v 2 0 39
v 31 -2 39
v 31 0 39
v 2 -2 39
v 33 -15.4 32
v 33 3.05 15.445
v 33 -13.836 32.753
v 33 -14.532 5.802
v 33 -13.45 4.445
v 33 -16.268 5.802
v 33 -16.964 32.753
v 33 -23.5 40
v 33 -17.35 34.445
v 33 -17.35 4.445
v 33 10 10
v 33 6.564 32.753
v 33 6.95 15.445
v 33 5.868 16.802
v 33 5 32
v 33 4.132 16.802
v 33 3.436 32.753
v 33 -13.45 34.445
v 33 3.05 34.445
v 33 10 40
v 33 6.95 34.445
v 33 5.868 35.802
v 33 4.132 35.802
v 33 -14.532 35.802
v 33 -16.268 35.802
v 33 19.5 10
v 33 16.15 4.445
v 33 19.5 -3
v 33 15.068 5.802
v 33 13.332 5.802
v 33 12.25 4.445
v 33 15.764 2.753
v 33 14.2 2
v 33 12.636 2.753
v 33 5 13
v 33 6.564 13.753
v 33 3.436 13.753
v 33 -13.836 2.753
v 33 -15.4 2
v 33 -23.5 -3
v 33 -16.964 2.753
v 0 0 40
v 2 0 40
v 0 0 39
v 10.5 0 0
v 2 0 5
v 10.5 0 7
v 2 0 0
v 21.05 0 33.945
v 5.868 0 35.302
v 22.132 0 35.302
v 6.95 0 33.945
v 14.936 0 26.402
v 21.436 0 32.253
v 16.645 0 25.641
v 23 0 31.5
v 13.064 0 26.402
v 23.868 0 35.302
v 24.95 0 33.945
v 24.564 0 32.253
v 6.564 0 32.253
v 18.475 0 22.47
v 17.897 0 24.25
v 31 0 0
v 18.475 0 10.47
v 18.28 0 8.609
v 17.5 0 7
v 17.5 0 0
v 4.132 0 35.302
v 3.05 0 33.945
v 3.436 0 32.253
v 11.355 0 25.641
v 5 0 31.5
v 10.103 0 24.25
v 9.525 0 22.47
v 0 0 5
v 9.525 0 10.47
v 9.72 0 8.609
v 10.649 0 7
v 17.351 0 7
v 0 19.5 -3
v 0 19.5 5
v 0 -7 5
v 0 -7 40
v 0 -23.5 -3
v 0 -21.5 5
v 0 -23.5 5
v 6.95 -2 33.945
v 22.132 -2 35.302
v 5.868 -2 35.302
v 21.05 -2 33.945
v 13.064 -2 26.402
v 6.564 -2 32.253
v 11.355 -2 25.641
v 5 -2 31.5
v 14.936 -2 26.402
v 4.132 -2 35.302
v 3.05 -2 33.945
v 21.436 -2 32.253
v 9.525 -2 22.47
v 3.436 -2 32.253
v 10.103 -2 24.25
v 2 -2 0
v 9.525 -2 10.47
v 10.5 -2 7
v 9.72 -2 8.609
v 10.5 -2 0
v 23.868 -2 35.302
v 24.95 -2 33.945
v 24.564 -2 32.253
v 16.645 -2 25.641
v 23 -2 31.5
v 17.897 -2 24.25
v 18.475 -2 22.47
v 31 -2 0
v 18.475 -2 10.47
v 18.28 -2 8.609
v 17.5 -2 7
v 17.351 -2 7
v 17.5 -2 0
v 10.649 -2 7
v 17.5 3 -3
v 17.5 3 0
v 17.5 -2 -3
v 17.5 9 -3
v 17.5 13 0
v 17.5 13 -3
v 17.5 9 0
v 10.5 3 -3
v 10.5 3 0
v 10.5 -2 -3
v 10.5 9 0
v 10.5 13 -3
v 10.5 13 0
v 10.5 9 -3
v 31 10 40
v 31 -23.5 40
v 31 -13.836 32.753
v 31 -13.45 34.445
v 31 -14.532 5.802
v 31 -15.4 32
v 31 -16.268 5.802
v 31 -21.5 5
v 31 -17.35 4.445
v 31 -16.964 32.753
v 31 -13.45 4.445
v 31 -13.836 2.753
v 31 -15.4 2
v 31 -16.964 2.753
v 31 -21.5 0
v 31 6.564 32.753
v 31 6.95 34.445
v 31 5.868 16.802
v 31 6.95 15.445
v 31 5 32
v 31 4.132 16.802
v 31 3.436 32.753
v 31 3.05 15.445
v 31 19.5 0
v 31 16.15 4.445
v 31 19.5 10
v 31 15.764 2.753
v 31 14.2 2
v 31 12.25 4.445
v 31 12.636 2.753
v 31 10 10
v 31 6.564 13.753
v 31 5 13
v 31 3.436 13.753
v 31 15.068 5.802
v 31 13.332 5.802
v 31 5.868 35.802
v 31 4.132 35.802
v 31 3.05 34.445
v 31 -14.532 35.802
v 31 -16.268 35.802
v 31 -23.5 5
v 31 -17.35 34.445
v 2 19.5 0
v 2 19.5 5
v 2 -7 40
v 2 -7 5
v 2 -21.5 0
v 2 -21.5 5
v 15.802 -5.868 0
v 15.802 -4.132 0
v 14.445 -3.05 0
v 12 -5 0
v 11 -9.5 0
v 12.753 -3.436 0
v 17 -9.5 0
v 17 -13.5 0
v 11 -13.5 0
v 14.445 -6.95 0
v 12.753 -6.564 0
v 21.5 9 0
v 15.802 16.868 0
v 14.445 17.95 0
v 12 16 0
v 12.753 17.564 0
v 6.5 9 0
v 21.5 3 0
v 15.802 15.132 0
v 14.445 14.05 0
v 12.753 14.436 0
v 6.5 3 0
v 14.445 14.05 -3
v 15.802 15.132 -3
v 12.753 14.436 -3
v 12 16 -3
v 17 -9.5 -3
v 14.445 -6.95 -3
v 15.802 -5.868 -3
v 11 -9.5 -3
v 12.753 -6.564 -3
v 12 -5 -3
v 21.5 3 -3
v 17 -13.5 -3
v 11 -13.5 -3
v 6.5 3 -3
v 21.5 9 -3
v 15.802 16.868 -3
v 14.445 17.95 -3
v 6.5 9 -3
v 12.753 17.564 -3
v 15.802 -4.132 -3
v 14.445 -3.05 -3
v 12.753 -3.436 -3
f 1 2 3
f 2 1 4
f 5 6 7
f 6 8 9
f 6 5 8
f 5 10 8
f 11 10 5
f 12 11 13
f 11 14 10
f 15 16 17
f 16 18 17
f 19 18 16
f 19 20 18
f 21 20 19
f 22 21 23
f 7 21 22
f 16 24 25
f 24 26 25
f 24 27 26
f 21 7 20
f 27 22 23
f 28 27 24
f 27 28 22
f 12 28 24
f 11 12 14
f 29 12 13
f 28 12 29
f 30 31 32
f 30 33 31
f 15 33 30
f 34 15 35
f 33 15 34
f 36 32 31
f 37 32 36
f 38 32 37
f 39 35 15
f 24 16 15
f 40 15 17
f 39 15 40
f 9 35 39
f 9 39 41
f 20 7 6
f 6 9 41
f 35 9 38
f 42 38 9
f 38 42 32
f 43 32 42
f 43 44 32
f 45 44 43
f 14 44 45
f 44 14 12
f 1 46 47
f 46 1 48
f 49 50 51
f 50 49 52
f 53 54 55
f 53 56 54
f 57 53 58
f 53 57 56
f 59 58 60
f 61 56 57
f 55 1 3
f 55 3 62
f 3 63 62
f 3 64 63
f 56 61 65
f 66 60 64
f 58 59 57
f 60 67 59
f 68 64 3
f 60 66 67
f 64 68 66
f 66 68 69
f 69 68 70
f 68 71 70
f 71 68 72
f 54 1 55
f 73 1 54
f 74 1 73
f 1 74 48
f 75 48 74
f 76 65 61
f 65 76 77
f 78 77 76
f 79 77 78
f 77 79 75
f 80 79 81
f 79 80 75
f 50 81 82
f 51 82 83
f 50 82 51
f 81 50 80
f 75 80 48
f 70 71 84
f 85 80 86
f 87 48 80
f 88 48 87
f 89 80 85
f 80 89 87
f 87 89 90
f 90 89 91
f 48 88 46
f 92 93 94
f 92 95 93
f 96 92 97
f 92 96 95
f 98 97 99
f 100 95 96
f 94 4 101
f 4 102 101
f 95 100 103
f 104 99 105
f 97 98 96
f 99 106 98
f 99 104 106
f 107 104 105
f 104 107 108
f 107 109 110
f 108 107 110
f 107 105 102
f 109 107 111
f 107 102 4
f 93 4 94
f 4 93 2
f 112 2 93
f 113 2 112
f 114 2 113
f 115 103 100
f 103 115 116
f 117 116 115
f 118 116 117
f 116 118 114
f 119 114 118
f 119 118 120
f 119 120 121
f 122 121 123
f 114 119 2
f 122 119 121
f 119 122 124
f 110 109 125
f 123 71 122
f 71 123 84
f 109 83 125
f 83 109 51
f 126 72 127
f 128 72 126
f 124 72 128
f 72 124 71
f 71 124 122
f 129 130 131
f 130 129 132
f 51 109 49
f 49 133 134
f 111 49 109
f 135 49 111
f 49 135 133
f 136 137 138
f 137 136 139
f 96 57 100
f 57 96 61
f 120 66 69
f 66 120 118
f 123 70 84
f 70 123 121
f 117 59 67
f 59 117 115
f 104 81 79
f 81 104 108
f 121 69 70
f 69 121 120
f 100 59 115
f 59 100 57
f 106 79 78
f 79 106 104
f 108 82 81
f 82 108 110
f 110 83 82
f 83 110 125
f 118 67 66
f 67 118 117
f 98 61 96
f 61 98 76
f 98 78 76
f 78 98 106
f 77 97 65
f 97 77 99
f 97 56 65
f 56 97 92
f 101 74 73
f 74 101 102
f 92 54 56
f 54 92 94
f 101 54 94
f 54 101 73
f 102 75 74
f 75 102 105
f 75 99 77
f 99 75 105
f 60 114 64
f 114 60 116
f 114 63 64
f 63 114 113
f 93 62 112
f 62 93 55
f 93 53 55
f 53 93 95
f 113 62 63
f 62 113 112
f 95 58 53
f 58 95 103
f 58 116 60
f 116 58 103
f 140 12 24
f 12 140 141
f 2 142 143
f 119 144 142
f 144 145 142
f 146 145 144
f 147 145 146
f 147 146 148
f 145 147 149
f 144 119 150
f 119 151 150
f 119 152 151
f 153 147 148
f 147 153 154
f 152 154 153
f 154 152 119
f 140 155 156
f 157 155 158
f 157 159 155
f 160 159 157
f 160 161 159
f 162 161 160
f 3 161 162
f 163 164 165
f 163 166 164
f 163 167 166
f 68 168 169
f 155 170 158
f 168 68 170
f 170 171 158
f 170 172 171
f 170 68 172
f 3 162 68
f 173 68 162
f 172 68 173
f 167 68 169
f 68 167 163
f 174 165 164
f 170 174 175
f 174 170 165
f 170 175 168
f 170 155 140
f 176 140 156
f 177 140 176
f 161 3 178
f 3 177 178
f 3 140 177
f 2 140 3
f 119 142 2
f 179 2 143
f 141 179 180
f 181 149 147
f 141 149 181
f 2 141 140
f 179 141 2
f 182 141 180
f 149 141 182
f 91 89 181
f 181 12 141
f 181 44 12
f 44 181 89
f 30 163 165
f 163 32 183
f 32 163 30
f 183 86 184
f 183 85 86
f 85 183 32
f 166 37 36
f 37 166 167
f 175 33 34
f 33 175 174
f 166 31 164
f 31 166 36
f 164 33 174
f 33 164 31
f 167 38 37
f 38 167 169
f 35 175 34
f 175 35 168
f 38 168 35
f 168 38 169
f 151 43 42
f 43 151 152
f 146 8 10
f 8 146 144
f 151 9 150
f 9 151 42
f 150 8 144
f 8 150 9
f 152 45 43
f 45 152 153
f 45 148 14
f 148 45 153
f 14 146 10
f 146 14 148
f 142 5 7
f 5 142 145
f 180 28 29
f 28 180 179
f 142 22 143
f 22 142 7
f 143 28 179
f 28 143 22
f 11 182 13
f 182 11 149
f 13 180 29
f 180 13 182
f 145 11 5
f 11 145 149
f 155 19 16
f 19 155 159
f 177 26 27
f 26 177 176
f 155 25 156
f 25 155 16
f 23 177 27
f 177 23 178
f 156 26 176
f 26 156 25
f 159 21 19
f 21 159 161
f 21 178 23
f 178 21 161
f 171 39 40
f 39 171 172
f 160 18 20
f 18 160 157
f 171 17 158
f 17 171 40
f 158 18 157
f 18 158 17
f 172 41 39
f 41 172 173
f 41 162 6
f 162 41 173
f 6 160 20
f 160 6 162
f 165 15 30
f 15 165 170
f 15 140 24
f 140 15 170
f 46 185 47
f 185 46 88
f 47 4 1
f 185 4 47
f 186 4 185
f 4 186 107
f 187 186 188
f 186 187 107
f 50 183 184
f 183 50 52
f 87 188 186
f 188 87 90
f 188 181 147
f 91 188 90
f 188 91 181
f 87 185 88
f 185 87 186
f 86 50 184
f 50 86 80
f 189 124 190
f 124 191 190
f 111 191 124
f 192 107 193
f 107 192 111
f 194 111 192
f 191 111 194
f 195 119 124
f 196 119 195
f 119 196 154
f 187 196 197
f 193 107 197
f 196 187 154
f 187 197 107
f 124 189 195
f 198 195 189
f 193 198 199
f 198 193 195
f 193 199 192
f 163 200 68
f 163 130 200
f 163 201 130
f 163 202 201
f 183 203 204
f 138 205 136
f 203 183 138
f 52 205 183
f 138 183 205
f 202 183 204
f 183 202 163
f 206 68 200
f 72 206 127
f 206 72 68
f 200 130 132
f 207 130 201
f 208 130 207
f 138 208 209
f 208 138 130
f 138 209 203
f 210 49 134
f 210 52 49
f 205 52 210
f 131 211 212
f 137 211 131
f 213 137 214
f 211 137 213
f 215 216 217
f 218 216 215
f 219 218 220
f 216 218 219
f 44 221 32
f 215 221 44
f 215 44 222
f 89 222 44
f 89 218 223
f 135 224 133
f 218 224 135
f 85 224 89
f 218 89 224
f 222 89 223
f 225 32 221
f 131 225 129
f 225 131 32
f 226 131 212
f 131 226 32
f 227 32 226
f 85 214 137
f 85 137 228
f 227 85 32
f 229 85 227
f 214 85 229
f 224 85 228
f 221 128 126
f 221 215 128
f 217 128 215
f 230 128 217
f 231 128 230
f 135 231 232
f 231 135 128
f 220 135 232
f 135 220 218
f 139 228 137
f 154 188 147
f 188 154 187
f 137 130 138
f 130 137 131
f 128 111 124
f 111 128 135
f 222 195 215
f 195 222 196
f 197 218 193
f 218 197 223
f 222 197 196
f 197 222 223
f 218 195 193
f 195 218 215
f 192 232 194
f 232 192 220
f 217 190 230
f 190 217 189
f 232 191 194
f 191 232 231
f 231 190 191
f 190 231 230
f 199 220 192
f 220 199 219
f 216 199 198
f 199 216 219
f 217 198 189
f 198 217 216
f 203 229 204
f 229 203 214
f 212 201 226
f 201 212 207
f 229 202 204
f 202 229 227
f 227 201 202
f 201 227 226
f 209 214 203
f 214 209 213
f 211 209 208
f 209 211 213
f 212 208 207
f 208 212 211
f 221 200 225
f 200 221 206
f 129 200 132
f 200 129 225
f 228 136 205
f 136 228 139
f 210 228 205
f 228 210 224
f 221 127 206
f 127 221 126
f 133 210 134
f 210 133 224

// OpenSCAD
module base()
{translate([0,0,1.5])
{
import("C:/Users/a.airaghi/Desktop/__disegniParti/Motor_mount/files/motorMount.stl");}}
module par1()
    {difference()
        {
        union()
            {
            translate([0,-23.5,0])
    color("red")cube([3,43,33]);
                translate([-5,-23.5,0])        
cube([5,2,33]);}
    translate([-7,-2,10.5])color("red")cube([16,15,7]);
            translate([-10,-13.5,11])color("red")cube([16,4,6]);
    translate([-5,-5,14])
    rotate([0,90,0])
    color("red")
    cylinder(r=2,h=10);
    translate([-5,16,14])
    rotate([0,90,0])
    color("red")
    cylinder(r=2,h=10);
    translate([-4,3,6.5])
cube([20,6,15]);
        }
    }
        
module par2()
    {difference()
        {
        translate([-39,-2,0])
    color("blue")cube([40,2,33]);

    translate([-7,-2.5,10.5])color("blue")cube([16,15,7]);

    hull()
    {
    translate([-10,5,14])
    rotate([90,0,0])
    color("blue")cylinder(r=4.5,h=10);
    translate([-22,5,14])
    rotate([90,0,0])
    color("blue")cylinder(r=4.5,h=10);}
               
    translate([-33.5,3,5])
        rotate([90,0,0])        
    cylinder(r=2,h=10);
                translate([-33.5,3,23])
        rotate([90,0,0])        
    cylinder(r=2,h=10);    
        }
        

    
        
    }

module par3()
    {difference()
        {
        translate([-40,-23.5,31])
    color("green")cube([41.5,43,2]);
translate([-4,14.2,25])
 color("green")cylinder(r=2,h=10)  ; 
    translate([-4,-15.4,25])
 color("green")cylinder(r=2,h=10)  ; 
     translate([-34,-15.4,25])
 color("green")cylinder(r=2,h=10)  ; 
    translate([-34,5,25])
 color("green")cylinder(r=2,h=10)  ; 
    translate([-15,5,25])
 color("green")cylinder(r=2,h=10)  ; 
 translate([-40,10,31])
    color("green")cube([30,11,2]); 
   
           
        }
    }

module par4()
    {difference()
        {
        translate([-40,-23.5,0])
    color("orange")cube([41.5,43,2]);
translate([-40,-23.5,0])
    color("orange")cube([35,16.5,2]);
 translate([-40,0,0])
    color("orange")cube([35,23,2]);  
           
        }
    }

//base();
rotate([0,90,0])
union()
    {
par1();
par2();
par3();
par4(); 
        }
//par1();


    

        
        
        
       

   
    
